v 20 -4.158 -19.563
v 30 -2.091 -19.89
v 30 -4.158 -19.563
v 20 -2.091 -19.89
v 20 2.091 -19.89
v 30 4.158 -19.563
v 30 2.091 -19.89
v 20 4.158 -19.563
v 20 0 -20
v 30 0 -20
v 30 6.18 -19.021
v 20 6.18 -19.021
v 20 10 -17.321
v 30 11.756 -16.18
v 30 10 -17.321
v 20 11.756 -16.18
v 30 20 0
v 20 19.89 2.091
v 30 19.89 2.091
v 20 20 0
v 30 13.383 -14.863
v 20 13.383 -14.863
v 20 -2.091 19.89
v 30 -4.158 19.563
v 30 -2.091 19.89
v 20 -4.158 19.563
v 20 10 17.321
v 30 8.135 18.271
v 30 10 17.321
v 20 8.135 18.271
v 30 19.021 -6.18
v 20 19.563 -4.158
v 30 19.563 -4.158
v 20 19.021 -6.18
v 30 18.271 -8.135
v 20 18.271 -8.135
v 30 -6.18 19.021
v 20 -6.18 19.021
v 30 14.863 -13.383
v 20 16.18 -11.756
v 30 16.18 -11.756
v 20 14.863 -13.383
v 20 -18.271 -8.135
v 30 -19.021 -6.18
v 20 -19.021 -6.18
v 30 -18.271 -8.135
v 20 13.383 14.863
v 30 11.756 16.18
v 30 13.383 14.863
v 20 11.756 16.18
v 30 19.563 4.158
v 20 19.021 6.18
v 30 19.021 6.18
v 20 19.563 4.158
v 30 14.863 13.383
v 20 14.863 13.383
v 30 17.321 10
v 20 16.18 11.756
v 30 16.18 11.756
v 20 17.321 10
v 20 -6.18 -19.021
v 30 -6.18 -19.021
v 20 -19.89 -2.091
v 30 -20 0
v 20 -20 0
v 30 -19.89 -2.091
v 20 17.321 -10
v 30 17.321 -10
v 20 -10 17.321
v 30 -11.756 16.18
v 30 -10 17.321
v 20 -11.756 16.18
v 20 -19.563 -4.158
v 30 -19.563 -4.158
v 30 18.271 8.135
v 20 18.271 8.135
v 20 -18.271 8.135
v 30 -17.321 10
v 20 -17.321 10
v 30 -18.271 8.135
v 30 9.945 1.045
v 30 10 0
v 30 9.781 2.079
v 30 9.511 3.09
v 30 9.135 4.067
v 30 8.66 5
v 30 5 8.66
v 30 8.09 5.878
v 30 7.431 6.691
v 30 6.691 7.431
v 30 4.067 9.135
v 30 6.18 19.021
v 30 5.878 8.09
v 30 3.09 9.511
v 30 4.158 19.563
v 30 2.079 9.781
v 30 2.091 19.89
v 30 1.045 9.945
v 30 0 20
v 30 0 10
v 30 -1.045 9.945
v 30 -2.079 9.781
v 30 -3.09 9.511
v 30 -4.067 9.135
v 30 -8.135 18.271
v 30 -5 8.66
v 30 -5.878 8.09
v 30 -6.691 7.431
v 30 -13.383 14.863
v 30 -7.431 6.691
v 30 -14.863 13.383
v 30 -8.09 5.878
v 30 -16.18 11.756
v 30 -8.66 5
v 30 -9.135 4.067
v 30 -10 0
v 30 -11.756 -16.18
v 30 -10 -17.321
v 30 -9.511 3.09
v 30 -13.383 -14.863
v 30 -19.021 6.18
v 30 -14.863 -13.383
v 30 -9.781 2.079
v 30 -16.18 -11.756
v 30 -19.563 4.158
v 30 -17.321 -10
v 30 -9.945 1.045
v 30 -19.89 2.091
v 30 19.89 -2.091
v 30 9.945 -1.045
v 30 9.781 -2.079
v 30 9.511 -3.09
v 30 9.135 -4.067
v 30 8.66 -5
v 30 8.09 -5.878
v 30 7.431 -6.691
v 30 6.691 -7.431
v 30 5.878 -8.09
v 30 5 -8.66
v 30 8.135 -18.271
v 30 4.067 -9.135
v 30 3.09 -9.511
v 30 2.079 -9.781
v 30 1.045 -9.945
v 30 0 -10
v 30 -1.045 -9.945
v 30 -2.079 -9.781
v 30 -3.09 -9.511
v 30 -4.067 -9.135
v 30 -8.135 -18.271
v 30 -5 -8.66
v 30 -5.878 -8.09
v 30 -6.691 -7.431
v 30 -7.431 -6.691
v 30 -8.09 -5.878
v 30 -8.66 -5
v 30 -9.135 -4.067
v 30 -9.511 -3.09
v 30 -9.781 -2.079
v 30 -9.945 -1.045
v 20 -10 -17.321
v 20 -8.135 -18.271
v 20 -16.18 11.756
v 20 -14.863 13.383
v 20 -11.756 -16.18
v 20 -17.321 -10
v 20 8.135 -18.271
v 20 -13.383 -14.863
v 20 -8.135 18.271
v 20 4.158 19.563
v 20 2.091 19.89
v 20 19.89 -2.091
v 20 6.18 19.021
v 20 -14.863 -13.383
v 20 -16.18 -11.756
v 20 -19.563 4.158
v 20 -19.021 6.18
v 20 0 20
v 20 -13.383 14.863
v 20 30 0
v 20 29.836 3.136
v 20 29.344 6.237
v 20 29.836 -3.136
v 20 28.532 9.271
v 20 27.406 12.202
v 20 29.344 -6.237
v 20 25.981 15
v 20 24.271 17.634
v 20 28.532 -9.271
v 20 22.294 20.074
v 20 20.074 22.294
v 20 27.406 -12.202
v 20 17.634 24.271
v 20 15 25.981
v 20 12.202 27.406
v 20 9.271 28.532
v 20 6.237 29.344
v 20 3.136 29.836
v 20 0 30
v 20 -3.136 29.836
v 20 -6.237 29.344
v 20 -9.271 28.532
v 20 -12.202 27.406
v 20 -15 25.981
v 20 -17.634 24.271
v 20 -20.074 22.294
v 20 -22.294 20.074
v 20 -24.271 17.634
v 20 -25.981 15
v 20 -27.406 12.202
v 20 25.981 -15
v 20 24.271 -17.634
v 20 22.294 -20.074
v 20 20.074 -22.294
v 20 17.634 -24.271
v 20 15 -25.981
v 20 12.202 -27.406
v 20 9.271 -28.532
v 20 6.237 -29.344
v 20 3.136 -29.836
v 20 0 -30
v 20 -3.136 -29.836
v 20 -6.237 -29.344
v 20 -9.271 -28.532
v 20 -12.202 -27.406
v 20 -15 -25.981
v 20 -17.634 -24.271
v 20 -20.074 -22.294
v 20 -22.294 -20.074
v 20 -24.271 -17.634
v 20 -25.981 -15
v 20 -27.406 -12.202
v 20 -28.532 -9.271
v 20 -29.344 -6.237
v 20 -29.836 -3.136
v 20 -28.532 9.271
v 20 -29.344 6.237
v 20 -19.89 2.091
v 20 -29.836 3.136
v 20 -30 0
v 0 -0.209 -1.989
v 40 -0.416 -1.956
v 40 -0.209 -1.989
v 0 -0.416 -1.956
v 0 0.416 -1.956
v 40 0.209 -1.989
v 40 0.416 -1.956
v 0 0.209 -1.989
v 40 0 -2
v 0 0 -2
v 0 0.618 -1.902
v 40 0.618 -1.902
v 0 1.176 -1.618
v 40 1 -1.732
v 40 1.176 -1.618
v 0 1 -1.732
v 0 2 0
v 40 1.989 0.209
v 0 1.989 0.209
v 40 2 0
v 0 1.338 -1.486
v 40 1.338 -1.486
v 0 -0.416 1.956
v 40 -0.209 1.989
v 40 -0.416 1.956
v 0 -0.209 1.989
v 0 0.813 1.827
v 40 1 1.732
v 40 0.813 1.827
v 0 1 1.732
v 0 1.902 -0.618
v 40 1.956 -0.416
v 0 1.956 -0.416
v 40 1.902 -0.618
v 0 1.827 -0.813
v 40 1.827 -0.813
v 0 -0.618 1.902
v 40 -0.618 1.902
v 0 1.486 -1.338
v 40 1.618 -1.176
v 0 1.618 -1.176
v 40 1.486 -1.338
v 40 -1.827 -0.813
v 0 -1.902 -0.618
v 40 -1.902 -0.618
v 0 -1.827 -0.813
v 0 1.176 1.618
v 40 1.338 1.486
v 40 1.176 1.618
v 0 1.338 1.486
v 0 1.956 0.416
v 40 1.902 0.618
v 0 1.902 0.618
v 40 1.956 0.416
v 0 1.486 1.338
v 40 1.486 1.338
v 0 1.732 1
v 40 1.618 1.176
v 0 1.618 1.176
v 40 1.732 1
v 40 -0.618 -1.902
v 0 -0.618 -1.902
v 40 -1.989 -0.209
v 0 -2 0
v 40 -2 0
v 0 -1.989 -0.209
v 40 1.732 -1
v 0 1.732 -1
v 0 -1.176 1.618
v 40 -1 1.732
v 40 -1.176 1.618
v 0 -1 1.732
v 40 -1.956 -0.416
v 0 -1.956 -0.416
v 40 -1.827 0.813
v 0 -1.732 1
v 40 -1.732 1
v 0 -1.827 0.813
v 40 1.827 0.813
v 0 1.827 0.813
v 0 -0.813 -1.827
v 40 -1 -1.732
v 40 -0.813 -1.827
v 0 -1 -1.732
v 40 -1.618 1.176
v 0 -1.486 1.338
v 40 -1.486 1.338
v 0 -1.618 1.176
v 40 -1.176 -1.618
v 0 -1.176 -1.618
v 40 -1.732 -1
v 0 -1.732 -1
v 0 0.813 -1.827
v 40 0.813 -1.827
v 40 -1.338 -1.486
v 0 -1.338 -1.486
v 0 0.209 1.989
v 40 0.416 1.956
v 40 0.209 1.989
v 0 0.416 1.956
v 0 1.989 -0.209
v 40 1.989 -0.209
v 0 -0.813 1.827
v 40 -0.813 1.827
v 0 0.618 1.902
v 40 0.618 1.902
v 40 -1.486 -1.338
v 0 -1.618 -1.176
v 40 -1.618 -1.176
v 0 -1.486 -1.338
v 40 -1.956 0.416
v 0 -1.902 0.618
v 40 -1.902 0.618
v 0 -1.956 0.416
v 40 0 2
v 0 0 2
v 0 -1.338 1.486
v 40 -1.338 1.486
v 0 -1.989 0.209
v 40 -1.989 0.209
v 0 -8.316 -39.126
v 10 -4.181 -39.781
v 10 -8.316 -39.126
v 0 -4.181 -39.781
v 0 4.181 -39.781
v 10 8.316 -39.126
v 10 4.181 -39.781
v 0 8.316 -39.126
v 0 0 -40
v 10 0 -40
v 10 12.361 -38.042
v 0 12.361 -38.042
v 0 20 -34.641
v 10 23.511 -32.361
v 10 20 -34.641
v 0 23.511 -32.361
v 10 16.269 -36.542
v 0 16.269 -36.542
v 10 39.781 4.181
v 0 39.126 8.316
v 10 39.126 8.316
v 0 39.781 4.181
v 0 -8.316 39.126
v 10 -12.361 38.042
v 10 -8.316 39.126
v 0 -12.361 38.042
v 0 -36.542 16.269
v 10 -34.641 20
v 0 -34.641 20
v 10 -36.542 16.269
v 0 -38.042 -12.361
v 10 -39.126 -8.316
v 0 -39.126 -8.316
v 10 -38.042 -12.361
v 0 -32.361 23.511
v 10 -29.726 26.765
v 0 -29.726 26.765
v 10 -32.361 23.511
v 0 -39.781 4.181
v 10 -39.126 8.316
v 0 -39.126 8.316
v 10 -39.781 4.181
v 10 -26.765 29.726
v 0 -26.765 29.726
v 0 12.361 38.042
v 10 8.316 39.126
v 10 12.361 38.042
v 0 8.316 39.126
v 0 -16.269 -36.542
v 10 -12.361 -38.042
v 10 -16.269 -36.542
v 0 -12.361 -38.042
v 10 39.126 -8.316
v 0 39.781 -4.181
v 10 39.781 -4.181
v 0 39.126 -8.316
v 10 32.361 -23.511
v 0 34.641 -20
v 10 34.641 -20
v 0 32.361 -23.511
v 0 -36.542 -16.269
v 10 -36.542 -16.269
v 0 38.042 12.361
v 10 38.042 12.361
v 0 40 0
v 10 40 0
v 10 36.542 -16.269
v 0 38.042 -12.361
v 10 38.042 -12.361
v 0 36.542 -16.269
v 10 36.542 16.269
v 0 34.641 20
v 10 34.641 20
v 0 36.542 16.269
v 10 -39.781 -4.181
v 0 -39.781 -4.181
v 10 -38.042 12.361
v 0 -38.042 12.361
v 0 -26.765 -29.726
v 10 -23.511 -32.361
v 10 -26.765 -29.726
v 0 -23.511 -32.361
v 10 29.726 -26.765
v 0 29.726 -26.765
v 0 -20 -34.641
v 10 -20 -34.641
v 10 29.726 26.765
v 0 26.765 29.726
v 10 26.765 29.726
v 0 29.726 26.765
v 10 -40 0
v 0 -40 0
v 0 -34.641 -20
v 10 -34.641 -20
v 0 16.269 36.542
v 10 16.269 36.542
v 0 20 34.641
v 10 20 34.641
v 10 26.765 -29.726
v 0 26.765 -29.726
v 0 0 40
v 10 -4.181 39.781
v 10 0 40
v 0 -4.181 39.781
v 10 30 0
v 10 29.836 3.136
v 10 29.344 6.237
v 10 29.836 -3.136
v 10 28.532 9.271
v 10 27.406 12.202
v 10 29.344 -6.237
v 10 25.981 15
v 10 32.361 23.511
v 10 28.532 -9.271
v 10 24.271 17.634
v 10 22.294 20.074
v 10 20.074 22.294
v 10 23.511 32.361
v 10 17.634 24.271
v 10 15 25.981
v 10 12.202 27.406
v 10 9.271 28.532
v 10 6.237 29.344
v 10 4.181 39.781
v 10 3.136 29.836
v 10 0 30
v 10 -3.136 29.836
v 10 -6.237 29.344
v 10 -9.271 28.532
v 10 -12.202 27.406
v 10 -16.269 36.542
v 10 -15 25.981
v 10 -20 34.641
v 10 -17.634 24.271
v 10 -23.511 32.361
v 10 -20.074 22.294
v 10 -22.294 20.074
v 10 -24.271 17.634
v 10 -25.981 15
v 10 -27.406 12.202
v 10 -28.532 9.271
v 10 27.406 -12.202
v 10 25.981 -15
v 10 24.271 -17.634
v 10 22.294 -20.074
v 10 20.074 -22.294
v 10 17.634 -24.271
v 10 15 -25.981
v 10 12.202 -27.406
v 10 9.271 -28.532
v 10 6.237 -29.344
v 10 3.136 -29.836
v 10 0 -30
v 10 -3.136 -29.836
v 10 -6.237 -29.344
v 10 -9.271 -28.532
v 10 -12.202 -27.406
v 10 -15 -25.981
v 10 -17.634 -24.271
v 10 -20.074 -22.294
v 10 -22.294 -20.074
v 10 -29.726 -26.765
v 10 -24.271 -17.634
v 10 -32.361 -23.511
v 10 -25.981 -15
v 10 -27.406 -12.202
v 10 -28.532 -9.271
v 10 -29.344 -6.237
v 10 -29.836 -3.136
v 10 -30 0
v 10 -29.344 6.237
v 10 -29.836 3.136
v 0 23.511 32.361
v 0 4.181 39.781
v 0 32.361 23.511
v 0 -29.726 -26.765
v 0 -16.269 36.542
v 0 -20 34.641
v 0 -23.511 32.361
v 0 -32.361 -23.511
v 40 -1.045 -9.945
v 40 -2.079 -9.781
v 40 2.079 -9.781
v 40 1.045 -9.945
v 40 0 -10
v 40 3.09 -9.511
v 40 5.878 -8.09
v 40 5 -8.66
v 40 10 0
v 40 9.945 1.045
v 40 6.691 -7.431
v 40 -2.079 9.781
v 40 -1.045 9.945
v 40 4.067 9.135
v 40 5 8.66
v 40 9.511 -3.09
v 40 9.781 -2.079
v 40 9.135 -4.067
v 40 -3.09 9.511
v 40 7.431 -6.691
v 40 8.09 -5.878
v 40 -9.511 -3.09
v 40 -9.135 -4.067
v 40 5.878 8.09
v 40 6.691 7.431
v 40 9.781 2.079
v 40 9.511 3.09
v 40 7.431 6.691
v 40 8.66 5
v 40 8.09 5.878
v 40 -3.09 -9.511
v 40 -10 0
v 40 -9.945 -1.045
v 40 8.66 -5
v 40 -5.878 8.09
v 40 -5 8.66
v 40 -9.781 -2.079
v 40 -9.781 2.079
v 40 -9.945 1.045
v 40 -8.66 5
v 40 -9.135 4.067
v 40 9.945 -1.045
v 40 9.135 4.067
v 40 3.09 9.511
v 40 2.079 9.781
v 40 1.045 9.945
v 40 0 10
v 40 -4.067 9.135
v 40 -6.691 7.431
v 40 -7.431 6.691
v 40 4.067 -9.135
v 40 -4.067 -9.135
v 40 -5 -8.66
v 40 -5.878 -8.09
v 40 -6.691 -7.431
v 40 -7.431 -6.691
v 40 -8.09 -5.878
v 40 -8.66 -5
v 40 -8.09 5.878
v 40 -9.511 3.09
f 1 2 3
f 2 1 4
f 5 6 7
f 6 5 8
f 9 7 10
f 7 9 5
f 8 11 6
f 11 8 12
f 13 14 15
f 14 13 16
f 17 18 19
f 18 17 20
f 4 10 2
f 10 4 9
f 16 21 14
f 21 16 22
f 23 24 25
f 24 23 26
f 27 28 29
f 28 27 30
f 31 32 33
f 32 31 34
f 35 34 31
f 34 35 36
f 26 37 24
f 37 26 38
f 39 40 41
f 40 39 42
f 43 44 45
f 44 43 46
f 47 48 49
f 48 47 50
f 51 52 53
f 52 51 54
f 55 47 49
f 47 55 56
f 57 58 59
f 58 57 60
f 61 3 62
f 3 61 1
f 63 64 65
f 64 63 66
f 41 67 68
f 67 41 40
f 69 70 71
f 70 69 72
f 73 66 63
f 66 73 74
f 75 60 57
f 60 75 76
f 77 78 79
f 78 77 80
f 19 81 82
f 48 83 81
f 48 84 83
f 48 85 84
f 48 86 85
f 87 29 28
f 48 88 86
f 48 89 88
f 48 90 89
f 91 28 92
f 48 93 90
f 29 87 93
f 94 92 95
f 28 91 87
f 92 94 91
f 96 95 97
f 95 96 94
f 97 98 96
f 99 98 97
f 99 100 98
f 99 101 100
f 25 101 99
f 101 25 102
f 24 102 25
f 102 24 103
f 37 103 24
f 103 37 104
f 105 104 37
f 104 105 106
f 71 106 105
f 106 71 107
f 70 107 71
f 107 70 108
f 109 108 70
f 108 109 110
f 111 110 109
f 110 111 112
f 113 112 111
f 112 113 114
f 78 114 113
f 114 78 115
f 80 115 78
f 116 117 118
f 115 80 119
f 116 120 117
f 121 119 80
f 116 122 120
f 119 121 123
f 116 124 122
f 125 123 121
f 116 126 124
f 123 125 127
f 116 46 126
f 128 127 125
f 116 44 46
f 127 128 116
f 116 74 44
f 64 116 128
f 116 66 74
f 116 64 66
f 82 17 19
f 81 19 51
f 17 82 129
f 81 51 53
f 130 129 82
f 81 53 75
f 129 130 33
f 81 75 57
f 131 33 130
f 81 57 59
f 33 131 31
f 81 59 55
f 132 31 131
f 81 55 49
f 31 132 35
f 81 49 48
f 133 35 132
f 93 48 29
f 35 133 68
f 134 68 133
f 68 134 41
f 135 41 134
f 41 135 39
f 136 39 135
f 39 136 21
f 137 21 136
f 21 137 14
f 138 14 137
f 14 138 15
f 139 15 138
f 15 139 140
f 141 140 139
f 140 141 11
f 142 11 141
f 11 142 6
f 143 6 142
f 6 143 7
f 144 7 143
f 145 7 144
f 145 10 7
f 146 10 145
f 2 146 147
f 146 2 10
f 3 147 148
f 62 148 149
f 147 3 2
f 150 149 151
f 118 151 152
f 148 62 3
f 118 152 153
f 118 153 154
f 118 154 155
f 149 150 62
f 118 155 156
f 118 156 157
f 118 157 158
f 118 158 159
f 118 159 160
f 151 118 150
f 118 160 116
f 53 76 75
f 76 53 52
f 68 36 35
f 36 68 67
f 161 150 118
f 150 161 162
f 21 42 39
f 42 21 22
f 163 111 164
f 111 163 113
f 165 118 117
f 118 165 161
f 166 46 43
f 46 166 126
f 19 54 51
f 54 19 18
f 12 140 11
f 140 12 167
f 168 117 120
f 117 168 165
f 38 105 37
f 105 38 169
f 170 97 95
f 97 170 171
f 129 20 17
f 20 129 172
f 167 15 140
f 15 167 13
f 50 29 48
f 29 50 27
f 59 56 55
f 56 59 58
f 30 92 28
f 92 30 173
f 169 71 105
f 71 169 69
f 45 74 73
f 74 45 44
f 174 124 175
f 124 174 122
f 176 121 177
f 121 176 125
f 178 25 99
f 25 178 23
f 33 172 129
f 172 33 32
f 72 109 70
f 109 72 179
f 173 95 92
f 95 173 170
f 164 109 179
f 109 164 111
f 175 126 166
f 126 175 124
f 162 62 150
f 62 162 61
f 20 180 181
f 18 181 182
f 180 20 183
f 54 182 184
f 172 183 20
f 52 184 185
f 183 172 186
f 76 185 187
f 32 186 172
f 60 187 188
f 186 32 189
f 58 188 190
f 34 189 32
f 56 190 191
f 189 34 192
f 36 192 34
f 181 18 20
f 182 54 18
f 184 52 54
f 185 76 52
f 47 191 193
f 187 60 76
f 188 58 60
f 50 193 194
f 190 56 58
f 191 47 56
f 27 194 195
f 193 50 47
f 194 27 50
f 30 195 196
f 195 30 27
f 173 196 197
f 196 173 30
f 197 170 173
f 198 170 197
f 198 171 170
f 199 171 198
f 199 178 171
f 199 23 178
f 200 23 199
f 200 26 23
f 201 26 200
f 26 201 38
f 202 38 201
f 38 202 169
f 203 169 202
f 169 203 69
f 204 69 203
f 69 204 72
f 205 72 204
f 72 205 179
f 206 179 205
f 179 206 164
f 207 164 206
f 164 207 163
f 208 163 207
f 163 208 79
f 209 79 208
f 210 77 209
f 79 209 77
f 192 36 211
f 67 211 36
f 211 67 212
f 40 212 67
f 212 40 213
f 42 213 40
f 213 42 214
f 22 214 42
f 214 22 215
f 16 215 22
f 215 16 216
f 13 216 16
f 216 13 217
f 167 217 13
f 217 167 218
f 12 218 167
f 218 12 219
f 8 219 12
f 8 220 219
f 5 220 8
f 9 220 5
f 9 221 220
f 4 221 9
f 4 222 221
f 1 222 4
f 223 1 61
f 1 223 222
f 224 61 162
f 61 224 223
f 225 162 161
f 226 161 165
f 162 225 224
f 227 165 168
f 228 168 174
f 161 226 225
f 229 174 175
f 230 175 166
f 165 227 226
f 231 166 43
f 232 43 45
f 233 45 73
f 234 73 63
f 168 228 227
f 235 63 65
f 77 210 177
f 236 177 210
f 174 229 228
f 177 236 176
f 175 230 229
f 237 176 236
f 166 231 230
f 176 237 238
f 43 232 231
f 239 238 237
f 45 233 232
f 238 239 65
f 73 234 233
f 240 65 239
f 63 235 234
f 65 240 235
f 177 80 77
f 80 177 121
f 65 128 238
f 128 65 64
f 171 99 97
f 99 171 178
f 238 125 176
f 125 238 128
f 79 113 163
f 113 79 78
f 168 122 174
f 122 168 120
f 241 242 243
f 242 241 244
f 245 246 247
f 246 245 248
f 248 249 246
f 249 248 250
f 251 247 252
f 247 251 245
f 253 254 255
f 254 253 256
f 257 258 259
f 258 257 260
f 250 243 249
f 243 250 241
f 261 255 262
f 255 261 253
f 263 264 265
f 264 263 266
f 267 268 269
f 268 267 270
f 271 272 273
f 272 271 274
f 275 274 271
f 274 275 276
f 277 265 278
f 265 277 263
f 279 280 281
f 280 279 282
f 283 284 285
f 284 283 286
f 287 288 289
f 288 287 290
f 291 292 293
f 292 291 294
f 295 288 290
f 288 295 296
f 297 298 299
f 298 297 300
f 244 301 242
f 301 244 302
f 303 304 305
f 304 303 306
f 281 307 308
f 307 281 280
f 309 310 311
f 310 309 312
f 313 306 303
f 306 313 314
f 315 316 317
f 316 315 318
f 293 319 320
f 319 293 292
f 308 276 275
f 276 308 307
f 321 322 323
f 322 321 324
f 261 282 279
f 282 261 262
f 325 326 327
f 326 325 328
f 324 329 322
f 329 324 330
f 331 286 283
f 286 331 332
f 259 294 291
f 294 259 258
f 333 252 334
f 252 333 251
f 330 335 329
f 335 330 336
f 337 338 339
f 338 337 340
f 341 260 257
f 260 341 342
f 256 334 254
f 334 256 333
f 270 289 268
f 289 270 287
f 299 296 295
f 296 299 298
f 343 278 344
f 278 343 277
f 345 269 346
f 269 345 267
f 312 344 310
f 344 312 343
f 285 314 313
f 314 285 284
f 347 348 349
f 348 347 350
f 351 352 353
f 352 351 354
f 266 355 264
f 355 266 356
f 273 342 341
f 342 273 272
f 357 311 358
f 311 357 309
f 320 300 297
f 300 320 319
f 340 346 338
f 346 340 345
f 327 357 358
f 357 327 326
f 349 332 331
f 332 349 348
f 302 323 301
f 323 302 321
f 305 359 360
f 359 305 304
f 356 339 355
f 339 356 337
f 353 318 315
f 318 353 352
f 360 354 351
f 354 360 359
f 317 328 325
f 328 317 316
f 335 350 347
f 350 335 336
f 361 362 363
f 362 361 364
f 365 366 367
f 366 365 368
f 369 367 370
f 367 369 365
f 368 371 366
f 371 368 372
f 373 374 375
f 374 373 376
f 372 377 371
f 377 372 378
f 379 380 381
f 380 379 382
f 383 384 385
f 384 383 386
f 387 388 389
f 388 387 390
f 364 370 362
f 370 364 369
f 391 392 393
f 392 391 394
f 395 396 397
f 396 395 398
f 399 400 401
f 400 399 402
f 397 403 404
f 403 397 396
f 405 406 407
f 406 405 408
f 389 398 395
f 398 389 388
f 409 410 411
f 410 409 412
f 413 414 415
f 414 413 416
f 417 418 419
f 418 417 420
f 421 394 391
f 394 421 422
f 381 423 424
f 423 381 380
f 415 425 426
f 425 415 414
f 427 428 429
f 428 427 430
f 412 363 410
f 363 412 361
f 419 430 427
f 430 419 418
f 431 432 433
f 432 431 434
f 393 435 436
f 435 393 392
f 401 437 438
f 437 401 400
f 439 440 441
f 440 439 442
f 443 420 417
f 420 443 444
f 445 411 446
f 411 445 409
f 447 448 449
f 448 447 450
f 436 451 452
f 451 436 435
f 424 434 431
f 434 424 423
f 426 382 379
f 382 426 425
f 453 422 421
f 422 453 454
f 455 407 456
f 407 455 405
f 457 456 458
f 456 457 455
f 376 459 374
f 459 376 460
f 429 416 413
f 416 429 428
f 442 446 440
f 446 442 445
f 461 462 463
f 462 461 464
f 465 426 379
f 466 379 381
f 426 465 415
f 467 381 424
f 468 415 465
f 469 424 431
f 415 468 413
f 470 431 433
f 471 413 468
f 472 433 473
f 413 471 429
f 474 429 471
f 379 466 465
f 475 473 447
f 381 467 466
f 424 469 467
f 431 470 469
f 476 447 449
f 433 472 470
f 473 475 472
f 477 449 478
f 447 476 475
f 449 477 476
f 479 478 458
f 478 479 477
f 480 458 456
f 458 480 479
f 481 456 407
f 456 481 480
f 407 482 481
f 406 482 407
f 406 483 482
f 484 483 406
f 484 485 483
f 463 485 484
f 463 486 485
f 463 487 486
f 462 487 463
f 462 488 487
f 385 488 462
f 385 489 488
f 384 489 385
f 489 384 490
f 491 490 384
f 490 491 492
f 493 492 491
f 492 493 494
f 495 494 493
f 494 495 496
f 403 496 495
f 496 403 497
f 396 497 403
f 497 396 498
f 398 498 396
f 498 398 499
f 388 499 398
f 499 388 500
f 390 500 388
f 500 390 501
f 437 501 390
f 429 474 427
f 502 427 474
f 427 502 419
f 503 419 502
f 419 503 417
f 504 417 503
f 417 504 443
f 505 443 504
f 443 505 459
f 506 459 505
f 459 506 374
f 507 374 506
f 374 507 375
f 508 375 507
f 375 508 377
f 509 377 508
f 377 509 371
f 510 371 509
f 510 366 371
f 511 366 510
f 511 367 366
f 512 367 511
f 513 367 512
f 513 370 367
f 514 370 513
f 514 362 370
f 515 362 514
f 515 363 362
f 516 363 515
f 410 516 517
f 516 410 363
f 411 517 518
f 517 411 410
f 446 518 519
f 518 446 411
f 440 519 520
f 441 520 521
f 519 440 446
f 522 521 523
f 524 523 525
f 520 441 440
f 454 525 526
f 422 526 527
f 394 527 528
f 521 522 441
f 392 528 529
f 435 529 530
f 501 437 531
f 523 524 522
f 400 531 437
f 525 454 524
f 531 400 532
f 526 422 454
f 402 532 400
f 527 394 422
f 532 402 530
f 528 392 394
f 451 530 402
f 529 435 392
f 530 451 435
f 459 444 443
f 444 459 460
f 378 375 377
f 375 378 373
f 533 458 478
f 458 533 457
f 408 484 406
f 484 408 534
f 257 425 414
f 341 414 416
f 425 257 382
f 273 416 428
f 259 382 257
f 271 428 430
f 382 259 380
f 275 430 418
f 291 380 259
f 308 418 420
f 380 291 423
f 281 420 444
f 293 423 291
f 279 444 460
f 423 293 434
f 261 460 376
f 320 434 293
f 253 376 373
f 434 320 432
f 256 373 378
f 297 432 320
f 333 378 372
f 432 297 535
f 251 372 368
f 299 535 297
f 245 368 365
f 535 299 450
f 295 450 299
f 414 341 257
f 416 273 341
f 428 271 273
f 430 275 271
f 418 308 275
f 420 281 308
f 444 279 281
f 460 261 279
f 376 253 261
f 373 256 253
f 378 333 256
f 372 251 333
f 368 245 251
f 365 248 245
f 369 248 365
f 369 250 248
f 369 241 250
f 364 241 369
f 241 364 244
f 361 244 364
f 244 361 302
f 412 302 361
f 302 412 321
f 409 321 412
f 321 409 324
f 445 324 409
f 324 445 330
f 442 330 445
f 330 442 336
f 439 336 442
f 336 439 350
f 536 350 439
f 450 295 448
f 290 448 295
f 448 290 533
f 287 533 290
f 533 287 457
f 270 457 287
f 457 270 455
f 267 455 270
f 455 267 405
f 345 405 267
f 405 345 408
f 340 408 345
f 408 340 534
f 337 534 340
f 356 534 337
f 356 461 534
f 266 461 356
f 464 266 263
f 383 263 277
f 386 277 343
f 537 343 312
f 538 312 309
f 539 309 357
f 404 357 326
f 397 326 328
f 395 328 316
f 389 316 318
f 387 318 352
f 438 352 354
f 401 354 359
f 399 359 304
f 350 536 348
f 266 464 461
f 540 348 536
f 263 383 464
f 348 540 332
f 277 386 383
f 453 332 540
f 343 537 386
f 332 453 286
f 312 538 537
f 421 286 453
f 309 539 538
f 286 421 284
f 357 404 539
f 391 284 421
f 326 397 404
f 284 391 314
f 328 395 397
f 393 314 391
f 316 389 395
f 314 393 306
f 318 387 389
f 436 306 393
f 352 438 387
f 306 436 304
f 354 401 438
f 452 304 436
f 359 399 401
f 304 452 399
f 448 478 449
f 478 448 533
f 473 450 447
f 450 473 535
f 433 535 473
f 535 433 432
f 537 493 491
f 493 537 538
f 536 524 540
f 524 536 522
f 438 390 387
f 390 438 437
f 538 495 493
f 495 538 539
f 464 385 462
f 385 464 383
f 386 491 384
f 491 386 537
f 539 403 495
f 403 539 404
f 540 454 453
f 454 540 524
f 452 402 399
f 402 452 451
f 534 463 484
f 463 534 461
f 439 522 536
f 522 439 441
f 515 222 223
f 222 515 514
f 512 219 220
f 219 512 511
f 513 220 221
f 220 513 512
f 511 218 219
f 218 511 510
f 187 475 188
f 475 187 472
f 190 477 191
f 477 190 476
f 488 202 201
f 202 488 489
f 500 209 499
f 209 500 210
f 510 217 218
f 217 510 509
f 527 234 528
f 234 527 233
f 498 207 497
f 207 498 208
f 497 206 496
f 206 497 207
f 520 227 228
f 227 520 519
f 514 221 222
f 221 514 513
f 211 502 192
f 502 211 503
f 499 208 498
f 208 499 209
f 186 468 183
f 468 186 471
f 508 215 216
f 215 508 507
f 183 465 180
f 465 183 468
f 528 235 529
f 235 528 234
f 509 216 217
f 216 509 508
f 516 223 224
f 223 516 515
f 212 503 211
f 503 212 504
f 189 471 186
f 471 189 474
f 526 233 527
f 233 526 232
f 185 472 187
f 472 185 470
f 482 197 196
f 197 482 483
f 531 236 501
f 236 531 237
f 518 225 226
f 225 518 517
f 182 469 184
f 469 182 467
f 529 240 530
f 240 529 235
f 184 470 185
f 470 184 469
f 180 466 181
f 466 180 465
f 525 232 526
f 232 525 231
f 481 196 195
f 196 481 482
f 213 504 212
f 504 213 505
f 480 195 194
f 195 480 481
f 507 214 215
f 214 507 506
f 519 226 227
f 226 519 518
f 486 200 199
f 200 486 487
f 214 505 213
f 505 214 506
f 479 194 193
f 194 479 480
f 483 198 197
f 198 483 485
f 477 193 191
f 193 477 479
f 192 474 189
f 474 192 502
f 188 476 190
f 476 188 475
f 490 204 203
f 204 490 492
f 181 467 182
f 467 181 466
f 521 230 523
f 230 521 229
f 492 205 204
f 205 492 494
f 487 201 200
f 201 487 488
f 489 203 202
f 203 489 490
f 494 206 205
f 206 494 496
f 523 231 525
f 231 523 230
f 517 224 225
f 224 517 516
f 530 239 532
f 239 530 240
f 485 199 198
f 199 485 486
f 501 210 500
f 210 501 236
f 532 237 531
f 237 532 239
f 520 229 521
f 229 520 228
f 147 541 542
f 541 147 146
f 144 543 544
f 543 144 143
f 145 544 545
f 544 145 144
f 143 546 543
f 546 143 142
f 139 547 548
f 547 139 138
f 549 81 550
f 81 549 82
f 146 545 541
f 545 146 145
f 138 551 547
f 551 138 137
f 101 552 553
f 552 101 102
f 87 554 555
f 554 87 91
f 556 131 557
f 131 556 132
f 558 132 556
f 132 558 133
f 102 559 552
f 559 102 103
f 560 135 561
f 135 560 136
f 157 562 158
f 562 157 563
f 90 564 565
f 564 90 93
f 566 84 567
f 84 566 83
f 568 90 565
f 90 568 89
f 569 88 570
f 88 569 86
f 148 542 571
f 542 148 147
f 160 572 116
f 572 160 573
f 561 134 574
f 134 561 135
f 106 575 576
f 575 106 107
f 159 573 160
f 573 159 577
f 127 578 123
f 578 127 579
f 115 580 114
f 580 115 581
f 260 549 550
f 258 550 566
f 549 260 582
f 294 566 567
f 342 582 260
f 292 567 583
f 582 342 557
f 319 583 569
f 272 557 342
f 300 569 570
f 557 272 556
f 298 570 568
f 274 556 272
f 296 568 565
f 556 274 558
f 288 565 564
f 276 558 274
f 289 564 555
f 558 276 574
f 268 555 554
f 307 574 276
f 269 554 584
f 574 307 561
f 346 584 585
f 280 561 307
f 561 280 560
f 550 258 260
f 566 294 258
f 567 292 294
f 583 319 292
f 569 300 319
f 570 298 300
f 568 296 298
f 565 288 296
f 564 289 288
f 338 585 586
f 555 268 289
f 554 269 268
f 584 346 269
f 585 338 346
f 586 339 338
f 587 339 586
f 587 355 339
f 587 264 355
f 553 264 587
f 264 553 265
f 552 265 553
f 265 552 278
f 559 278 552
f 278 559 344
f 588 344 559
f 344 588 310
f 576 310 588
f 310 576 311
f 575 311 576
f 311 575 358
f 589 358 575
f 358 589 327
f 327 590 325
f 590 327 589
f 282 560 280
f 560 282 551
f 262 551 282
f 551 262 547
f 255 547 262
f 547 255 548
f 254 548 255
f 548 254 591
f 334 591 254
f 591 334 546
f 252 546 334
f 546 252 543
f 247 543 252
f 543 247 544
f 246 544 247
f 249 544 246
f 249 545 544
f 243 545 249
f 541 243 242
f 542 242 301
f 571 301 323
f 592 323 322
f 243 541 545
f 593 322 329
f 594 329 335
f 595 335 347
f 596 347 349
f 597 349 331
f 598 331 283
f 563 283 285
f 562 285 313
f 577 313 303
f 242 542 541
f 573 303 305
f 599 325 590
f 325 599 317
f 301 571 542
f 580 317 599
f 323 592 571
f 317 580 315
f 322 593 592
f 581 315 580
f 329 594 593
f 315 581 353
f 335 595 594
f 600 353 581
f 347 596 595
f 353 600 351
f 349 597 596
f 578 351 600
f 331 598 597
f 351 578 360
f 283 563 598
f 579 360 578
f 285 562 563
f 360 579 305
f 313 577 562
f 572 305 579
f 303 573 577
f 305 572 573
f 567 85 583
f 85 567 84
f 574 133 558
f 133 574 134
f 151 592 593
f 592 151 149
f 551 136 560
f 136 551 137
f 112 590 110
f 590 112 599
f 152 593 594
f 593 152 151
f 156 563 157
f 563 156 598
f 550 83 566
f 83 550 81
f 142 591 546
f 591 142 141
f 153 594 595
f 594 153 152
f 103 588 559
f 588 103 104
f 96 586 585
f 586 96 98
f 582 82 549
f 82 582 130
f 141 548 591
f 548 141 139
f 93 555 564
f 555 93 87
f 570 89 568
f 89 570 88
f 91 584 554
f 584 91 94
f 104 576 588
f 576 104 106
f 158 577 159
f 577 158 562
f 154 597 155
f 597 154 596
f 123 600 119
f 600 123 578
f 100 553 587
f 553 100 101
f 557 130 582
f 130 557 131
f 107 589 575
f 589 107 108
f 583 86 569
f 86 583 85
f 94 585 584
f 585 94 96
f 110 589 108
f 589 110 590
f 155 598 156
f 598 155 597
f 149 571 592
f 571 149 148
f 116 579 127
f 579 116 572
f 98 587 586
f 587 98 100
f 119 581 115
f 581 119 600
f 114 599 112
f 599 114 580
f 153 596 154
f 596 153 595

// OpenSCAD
dx=10;

scale=10;
$fn=60;

n=round(4/(dx/scale));
echo (n);
for (i=[0:1:n]){
    x=i*dx/scale;
    echo(x);
    translate ([i*dx,0,0])
    rotate ([0,90,0])
    difference(){
        cylinder (h=dx,r=(-x+4)*scale);
        cylinder (h=dx,r=2);
    }
    
}
